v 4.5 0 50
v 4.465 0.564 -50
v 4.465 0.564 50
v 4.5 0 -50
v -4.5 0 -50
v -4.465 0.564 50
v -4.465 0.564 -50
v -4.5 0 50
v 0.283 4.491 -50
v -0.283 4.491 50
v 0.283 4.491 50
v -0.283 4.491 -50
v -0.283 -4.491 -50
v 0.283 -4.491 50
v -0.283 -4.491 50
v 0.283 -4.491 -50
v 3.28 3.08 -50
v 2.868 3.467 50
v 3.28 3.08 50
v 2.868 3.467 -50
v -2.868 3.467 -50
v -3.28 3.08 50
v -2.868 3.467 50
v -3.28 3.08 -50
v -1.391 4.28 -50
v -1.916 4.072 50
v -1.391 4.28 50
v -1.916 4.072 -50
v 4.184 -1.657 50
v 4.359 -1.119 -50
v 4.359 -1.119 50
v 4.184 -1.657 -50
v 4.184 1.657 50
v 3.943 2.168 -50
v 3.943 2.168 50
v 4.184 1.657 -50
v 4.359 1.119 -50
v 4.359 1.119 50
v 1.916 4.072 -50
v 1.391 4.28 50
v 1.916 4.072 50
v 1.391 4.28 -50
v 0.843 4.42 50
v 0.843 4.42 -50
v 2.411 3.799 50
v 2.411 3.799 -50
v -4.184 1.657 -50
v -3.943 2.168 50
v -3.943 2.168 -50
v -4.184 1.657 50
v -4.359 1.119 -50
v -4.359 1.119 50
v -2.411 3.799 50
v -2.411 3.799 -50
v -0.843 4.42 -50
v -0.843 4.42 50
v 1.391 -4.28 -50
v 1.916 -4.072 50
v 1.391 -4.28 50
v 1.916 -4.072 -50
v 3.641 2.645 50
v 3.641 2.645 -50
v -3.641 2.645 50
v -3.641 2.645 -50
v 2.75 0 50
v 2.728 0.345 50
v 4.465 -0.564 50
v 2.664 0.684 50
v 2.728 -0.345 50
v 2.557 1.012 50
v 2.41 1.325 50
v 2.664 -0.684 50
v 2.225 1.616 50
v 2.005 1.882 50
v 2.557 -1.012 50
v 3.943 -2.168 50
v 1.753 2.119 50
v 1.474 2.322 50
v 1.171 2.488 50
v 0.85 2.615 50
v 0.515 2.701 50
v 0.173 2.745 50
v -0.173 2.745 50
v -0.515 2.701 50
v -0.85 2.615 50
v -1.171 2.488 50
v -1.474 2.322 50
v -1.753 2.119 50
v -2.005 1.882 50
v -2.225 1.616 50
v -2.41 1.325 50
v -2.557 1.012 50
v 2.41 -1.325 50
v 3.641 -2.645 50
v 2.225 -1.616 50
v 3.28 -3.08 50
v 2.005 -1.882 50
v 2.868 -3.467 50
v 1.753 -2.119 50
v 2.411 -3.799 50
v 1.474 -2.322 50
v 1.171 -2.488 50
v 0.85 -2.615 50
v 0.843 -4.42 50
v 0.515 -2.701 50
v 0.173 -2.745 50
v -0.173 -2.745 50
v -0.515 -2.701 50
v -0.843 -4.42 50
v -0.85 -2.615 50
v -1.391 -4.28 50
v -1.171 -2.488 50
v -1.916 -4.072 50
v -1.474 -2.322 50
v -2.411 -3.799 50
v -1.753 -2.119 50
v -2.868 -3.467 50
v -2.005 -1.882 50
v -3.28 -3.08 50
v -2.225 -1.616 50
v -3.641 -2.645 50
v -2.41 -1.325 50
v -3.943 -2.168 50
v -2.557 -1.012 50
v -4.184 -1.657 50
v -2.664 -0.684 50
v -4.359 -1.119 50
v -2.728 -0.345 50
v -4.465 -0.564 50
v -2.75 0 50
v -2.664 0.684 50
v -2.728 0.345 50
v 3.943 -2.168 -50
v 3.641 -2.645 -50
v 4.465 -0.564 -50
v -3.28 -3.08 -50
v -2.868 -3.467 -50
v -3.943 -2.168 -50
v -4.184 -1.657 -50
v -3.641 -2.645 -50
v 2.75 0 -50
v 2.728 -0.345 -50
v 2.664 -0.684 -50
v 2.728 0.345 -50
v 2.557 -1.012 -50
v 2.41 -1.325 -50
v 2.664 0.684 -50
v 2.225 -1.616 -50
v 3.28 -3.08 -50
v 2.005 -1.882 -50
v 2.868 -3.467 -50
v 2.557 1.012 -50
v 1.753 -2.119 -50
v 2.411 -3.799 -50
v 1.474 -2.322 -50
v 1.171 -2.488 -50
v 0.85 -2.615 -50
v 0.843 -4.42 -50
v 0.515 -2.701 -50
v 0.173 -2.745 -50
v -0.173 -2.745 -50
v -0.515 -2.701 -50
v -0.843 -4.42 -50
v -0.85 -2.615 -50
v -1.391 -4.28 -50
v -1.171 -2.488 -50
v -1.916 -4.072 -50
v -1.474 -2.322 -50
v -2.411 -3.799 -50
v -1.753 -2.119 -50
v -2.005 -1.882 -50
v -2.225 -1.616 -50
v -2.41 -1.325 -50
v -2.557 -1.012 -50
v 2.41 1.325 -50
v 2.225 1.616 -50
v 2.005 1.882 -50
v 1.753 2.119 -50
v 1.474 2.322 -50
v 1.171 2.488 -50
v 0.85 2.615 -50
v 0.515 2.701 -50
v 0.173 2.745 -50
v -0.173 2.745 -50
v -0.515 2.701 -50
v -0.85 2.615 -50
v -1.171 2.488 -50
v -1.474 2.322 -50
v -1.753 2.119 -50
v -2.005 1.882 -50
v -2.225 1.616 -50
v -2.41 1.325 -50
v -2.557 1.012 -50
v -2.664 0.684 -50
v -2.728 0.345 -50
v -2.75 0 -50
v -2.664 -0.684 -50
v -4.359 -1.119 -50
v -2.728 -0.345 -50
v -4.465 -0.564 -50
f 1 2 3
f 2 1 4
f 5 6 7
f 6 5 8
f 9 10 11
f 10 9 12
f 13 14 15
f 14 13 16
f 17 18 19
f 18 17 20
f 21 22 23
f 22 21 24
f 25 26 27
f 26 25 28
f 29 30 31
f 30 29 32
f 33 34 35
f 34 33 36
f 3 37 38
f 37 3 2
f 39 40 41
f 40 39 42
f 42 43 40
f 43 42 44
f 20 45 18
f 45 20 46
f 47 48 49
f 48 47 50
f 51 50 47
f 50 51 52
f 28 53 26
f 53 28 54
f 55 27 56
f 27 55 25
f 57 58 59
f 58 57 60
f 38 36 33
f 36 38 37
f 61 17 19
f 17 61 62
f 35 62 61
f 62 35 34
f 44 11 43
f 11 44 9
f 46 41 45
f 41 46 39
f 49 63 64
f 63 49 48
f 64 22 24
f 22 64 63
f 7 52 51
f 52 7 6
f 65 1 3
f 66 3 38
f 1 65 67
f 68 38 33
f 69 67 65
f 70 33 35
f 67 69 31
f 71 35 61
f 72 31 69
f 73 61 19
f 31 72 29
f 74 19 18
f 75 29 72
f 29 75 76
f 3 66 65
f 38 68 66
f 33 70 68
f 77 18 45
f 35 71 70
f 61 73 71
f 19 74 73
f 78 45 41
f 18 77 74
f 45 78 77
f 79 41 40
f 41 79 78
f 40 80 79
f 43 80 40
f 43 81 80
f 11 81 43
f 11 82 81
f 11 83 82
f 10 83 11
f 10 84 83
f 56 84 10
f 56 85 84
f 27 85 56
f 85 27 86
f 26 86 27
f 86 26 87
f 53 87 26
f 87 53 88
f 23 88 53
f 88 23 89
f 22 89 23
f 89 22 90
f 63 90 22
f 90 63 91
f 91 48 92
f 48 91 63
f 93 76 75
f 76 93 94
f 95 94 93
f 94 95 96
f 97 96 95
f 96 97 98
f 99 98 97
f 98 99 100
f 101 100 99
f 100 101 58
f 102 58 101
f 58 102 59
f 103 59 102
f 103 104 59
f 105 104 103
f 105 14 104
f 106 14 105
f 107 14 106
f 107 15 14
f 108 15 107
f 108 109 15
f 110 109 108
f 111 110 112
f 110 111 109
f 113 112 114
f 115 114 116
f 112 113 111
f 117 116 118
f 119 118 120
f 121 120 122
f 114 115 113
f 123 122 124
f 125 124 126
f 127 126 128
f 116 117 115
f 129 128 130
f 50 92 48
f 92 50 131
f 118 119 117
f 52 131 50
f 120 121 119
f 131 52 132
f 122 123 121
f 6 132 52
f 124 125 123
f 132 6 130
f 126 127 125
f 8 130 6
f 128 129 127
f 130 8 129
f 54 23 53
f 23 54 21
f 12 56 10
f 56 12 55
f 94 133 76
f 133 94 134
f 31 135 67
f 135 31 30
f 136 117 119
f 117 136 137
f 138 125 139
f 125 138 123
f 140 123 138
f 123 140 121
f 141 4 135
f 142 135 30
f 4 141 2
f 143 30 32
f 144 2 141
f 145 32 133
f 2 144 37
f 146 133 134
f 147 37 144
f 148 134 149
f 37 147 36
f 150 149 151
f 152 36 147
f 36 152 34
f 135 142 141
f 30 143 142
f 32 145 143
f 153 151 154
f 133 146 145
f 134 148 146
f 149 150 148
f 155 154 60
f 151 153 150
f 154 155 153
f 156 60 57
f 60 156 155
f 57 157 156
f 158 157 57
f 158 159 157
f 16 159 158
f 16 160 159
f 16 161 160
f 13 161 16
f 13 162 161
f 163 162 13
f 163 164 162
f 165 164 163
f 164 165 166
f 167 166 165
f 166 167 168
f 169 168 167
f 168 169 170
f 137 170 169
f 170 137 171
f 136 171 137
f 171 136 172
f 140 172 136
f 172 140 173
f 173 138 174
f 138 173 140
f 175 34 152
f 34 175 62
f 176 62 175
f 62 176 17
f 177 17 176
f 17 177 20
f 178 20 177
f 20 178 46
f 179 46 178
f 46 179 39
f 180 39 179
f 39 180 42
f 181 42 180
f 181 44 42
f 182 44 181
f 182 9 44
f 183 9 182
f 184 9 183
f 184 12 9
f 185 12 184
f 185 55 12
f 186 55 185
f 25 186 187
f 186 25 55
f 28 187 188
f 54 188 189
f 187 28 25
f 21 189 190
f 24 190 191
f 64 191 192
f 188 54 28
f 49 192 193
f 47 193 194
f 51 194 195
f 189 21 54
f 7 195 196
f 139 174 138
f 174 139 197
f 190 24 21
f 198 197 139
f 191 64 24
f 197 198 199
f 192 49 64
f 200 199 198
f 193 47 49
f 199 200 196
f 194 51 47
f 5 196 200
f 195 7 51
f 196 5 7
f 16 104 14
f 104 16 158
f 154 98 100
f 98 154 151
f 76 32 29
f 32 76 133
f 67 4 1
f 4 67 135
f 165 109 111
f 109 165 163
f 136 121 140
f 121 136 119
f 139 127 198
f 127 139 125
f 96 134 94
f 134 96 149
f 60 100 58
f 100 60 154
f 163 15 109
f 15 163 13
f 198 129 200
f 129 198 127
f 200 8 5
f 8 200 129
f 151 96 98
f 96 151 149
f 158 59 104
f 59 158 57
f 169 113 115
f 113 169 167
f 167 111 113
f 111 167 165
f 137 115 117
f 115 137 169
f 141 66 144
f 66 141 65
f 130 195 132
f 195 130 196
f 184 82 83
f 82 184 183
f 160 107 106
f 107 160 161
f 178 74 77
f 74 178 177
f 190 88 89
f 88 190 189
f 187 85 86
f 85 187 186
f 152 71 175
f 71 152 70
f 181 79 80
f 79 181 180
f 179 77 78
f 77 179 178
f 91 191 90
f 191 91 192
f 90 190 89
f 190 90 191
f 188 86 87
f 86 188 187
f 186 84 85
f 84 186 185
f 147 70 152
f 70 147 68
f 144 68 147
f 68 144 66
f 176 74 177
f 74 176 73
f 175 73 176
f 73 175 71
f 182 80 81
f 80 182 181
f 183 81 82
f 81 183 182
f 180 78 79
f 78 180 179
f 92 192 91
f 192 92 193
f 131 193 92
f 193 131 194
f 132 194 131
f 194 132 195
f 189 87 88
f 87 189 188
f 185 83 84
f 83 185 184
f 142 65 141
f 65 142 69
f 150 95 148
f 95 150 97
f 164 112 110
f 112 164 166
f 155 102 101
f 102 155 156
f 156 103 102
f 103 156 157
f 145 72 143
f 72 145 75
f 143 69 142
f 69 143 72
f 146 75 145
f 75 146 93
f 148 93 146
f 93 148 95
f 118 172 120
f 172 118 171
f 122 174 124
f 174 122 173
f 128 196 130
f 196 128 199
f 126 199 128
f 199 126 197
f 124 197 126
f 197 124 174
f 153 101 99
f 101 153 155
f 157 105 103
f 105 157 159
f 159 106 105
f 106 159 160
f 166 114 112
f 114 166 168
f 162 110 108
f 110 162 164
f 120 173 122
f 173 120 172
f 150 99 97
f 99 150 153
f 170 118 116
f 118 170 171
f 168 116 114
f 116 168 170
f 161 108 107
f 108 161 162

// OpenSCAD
$fn = 50;


difference() {
	union() {
		translate(v = [0, 0, -50.0000000000]) {
			cylinder(h = 100, r = 4.5000000000);
		}
	}
	union() {
		translate(v = [0, 0, -100.0000000000]) {
			cylinder(h = 200, r = 2.7500000000);
		}
	}
}
